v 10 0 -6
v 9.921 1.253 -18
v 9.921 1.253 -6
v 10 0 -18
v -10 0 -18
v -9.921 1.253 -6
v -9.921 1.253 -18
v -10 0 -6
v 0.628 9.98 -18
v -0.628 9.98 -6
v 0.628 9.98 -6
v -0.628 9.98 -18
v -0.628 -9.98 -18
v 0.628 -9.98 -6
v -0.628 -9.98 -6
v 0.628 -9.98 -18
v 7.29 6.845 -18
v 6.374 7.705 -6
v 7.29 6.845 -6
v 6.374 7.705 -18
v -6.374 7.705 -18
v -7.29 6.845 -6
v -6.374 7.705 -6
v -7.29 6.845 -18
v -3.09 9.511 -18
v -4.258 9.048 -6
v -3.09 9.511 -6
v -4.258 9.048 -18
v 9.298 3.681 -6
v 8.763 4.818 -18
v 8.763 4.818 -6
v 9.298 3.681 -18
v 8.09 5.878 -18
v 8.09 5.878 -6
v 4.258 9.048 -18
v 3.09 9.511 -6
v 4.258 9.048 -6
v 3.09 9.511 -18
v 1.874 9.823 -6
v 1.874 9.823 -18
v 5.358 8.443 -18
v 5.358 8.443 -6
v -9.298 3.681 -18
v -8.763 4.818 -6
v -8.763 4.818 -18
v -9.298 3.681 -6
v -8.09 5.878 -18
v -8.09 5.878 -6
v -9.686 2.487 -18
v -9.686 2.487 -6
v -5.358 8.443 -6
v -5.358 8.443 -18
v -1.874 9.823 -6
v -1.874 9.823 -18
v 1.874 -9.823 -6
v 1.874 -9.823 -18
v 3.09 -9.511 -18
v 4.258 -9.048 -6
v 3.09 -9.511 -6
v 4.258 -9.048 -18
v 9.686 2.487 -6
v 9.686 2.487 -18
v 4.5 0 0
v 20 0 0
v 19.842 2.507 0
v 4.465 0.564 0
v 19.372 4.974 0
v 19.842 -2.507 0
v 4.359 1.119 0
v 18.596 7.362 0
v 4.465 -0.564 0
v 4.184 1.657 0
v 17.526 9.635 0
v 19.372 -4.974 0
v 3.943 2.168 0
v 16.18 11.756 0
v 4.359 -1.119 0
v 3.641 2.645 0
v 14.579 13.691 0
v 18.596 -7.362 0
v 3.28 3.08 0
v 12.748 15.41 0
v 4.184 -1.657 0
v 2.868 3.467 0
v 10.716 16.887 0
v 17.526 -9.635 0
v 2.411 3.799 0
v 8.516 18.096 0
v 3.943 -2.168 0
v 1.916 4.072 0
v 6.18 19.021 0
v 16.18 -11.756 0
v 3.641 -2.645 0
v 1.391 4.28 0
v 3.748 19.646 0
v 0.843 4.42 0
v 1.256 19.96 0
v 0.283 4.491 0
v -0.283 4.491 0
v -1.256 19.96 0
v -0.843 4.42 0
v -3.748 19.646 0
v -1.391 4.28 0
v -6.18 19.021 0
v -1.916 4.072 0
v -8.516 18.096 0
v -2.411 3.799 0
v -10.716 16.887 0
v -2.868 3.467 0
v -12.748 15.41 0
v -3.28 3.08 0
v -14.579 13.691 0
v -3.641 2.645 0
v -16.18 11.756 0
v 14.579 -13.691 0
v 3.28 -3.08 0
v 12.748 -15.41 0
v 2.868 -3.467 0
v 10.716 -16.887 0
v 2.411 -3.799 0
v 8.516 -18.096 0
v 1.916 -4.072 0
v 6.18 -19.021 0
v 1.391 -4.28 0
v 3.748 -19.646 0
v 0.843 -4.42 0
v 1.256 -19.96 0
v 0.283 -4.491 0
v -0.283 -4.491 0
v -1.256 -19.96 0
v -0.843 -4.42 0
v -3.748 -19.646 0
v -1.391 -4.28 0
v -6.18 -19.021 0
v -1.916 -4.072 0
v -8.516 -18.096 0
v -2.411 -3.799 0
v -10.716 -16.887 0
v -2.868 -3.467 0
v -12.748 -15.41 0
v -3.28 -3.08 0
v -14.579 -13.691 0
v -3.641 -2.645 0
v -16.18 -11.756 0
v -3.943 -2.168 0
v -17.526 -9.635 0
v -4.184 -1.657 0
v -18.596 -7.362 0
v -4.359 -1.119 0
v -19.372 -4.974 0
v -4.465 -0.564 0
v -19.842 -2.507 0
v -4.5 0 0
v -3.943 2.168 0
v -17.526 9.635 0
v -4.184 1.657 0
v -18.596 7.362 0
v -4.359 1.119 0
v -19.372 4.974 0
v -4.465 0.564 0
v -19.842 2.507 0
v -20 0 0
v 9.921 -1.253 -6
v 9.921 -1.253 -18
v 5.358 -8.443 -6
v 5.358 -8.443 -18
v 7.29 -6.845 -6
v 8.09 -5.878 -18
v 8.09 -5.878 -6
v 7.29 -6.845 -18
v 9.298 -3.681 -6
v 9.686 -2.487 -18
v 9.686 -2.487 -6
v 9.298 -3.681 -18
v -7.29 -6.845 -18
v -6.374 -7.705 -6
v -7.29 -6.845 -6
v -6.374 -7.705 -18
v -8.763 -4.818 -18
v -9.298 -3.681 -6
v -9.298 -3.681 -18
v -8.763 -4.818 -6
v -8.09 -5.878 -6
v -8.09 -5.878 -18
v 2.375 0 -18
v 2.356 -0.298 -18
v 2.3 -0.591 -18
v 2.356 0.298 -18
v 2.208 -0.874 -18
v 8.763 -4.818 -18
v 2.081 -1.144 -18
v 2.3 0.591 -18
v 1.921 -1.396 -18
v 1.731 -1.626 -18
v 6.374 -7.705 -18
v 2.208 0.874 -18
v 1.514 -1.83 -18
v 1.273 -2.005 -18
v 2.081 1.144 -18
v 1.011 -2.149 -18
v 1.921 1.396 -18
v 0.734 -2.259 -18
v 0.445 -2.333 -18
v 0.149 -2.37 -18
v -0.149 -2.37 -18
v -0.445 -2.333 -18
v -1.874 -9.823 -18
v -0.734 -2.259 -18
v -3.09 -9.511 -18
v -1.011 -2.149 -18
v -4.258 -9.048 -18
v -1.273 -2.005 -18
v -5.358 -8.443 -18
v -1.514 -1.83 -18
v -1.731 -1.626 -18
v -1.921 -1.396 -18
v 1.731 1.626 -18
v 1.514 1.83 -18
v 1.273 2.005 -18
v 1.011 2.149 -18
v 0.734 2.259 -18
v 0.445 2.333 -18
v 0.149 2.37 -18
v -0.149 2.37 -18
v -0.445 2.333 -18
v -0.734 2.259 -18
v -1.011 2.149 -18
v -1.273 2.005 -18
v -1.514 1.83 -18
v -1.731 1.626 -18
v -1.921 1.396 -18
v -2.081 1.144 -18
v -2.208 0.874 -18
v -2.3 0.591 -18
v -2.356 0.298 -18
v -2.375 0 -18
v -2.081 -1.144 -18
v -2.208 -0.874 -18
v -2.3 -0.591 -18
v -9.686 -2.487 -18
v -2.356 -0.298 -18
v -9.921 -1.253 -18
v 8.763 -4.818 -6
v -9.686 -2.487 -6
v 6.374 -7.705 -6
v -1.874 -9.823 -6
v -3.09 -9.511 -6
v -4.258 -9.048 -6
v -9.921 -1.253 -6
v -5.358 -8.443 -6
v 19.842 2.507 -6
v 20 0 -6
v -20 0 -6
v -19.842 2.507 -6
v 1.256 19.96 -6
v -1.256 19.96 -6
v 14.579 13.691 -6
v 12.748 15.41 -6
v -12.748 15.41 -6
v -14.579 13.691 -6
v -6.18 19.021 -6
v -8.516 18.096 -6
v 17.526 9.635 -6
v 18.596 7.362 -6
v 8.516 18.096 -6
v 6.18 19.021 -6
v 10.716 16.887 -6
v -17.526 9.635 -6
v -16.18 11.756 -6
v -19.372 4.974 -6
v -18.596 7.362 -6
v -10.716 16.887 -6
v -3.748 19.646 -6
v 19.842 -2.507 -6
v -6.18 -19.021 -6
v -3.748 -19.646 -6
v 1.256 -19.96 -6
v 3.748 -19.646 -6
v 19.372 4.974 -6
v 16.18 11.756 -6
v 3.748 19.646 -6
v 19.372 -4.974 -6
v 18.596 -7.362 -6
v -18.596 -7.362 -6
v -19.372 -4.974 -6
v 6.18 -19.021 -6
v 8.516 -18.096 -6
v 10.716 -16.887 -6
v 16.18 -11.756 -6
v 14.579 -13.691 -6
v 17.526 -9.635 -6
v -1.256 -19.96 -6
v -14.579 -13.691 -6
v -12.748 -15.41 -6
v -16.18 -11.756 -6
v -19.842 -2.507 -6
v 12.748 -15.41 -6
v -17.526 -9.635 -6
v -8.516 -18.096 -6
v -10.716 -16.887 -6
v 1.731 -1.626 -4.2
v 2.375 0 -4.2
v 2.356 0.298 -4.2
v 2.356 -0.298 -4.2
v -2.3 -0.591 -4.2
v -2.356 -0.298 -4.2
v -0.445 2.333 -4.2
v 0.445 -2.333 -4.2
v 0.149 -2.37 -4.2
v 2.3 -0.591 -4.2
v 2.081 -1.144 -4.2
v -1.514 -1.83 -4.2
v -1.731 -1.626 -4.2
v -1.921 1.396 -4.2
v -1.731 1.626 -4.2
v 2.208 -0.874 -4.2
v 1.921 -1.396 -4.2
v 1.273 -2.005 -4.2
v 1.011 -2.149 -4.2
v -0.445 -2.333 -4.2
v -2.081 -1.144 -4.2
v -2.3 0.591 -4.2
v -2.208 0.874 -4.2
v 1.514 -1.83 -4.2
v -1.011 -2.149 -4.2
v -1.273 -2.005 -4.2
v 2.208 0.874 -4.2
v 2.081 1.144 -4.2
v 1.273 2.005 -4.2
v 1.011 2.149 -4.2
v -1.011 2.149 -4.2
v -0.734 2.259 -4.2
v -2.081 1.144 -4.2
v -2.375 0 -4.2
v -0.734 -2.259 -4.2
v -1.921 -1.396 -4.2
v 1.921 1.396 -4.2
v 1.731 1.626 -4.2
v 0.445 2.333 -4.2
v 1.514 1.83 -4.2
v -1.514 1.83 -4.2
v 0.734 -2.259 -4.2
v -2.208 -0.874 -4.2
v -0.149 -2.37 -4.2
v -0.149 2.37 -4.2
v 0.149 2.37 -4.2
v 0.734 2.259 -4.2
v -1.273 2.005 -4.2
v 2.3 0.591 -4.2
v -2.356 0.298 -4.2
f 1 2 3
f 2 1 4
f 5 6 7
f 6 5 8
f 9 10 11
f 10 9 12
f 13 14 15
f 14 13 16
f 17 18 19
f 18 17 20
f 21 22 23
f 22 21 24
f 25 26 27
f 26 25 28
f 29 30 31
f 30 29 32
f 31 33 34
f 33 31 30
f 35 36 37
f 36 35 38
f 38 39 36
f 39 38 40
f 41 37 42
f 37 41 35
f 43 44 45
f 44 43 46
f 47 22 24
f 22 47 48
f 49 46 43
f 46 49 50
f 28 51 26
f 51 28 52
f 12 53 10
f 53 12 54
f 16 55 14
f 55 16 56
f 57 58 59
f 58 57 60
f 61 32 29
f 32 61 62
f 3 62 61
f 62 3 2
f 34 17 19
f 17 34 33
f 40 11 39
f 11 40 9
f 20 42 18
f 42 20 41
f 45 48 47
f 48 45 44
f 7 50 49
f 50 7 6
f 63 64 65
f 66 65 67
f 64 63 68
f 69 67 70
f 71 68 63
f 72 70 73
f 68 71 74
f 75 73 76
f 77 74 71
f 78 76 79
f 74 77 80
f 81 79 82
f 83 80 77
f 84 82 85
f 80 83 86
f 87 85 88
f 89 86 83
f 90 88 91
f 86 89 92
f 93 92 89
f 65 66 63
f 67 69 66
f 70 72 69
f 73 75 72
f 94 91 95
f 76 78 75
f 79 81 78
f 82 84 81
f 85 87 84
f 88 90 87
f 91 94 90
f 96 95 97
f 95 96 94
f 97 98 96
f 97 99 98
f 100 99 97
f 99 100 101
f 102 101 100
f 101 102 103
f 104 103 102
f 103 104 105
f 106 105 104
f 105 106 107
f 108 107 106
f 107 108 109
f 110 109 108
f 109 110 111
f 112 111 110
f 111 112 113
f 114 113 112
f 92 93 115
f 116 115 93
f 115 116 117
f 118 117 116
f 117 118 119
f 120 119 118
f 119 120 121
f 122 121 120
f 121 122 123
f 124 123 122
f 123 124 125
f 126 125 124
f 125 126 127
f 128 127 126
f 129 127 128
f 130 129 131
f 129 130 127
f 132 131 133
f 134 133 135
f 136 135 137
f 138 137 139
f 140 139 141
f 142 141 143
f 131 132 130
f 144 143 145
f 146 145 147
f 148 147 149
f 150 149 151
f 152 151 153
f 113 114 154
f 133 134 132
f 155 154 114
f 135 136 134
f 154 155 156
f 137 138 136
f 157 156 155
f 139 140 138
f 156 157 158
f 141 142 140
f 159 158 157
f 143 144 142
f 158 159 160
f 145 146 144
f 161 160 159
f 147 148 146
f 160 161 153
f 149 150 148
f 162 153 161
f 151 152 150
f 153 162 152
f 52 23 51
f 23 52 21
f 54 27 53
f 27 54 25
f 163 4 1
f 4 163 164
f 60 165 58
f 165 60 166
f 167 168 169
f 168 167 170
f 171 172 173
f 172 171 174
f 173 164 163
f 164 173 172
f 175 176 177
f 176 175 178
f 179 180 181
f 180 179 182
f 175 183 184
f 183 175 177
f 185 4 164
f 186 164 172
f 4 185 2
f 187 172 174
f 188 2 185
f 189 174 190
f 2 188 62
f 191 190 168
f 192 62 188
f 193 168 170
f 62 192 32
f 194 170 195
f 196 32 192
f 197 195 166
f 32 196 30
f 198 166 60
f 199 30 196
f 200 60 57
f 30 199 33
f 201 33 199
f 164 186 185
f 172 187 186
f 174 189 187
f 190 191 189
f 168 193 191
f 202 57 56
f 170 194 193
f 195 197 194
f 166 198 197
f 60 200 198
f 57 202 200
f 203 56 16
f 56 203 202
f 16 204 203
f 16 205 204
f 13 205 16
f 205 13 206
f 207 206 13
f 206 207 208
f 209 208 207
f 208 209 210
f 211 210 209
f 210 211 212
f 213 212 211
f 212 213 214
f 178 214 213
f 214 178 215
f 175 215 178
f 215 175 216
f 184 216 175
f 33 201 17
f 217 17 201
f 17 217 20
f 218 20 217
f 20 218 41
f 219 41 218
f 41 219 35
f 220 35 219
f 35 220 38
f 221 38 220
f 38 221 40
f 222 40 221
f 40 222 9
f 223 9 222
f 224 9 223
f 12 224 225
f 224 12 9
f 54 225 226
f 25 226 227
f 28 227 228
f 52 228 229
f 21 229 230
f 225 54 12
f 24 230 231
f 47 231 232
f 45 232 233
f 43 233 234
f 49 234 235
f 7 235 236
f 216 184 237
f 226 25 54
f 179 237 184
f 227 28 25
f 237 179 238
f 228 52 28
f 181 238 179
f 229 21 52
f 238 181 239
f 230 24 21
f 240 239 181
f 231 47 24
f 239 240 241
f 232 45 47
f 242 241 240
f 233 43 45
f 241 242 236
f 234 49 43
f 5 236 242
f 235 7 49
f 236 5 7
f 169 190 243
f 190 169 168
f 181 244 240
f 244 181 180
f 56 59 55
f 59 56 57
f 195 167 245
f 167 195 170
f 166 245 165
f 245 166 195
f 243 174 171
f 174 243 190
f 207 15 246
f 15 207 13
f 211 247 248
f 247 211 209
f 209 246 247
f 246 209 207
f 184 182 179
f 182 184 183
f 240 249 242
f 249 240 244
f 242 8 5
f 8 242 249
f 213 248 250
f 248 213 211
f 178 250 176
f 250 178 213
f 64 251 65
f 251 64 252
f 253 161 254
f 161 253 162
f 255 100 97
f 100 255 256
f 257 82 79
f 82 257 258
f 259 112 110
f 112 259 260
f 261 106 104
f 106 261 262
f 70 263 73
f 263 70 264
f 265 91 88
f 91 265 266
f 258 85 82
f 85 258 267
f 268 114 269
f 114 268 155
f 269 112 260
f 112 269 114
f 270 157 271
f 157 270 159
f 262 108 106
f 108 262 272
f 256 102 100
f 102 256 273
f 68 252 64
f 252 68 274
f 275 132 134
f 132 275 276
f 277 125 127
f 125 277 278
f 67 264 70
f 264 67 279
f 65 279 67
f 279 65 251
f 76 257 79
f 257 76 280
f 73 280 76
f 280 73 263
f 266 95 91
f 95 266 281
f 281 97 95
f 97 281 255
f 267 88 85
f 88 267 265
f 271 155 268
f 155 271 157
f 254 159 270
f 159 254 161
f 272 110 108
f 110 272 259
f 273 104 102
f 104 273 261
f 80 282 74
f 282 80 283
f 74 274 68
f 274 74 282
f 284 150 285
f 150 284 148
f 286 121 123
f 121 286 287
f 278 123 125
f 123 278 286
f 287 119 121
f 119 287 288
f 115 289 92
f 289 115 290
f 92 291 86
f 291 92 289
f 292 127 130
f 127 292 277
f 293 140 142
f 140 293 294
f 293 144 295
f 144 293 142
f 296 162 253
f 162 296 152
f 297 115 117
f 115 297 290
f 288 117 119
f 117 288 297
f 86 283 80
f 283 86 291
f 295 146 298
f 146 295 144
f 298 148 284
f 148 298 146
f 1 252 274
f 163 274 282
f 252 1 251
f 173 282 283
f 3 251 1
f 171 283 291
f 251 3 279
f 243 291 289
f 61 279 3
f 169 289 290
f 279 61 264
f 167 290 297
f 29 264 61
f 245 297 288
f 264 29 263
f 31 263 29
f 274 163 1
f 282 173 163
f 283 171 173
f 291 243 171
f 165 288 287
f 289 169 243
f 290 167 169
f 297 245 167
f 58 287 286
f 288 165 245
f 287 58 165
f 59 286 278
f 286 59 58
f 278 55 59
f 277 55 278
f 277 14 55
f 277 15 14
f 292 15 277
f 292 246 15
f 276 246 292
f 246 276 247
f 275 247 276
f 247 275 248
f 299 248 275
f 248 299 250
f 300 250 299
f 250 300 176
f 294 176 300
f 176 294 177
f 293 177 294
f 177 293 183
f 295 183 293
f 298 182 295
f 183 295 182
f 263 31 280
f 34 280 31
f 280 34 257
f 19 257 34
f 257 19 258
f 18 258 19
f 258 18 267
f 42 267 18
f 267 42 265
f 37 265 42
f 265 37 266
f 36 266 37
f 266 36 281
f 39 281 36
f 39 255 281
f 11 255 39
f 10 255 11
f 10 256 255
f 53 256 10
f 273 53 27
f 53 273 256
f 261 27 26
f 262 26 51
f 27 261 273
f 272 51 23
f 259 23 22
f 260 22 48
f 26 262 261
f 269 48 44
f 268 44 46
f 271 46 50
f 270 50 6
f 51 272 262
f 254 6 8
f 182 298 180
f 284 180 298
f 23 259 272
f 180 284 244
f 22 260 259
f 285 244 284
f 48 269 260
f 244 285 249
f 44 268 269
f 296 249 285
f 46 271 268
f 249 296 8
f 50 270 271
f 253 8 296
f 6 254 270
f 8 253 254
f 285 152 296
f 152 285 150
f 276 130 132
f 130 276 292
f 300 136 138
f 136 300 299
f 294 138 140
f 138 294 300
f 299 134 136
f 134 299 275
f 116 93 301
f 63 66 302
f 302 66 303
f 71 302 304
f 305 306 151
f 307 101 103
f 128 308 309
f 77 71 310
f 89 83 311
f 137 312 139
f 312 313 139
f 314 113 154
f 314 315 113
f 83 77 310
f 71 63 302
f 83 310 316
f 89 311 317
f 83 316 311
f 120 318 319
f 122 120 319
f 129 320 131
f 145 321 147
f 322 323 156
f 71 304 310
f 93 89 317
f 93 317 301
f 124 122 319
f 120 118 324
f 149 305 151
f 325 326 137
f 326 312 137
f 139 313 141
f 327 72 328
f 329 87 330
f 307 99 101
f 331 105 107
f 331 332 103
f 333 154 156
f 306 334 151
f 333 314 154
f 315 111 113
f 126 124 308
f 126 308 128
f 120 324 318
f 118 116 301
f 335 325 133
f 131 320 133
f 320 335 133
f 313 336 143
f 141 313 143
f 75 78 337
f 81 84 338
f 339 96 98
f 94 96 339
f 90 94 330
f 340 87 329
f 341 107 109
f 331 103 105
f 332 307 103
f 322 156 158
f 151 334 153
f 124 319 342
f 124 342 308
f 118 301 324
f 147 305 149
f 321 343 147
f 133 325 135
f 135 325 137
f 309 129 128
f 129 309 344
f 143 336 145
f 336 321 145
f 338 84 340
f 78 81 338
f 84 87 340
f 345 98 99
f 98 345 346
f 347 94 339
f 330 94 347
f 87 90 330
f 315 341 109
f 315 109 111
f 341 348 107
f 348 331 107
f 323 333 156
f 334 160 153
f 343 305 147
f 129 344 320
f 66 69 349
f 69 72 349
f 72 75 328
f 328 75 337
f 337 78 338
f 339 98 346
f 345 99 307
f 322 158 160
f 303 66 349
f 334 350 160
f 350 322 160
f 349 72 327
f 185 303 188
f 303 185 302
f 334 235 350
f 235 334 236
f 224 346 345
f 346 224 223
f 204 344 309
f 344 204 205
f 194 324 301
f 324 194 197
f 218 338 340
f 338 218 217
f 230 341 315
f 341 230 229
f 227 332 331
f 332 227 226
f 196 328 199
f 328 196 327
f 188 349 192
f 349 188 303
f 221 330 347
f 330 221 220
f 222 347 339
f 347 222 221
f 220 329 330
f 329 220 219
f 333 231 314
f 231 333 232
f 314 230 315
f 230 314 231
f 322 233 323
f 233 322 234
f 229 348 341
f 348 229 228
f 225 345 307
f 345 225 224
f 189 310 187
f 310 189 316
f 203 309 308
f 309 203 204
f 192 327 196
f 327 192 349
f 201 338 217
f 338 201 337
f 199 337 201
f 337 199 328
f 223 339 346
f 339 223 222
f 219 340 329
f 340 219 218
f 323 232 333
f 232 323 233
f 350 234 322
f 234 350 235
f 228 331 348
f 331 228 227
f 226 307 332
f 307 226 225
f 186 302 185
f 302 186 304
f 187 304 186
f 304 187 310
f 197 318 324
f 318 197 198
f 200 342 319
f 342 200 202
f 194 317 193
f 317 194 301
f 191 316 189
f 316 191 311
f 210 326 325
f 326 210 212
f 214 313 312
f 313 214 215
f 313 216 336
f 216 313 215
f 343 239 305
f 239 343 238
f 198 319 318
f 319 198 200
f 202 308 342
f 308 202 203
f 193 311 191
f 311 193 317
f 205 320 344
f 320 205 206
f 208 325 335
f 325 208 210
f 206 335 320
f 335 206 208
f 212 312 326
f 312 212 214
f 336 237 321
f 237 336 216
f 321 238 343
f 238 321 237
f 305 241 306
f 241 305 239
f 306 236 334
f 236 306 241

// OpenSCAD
$fn = 50;


difference() {
	union() {
		translate(v = [0, 0, -18.0000000000]) {
			cylinder(h = 18, r = 10.0000000000);
		}
		translate(v = [0, 0, -6.0000000000]) {
			cylinder(h = 6, r = 20.0000000000);
		}
	}
	union() {
		translate(v = [0, 0, 0]) {
			rotate(a = [0, 0, 0]) {
				difference() {
					union() {
						#translate(v = [0, 0, -18.0000000000]) {
							cylinder(h = 18, r = 2.2500000000);
						}
						#translate(v = [0, 0, -4.2000000000]) {
							cylinder(h = 4.2000000000, r1 = 2.3750000000, r2 = 4.5000000000);
						}
						#translate(v = [0, 0, -18.0000000000]) {
							cylinder(h = 18, r = 2.3750000000);
						}
						#translate(v = [0, 0, -18.0000000000]) {
							cylinder(h = 18, r = 2.2500000000);
						}
					}
					union();
				}
			}
		}
	}
}
